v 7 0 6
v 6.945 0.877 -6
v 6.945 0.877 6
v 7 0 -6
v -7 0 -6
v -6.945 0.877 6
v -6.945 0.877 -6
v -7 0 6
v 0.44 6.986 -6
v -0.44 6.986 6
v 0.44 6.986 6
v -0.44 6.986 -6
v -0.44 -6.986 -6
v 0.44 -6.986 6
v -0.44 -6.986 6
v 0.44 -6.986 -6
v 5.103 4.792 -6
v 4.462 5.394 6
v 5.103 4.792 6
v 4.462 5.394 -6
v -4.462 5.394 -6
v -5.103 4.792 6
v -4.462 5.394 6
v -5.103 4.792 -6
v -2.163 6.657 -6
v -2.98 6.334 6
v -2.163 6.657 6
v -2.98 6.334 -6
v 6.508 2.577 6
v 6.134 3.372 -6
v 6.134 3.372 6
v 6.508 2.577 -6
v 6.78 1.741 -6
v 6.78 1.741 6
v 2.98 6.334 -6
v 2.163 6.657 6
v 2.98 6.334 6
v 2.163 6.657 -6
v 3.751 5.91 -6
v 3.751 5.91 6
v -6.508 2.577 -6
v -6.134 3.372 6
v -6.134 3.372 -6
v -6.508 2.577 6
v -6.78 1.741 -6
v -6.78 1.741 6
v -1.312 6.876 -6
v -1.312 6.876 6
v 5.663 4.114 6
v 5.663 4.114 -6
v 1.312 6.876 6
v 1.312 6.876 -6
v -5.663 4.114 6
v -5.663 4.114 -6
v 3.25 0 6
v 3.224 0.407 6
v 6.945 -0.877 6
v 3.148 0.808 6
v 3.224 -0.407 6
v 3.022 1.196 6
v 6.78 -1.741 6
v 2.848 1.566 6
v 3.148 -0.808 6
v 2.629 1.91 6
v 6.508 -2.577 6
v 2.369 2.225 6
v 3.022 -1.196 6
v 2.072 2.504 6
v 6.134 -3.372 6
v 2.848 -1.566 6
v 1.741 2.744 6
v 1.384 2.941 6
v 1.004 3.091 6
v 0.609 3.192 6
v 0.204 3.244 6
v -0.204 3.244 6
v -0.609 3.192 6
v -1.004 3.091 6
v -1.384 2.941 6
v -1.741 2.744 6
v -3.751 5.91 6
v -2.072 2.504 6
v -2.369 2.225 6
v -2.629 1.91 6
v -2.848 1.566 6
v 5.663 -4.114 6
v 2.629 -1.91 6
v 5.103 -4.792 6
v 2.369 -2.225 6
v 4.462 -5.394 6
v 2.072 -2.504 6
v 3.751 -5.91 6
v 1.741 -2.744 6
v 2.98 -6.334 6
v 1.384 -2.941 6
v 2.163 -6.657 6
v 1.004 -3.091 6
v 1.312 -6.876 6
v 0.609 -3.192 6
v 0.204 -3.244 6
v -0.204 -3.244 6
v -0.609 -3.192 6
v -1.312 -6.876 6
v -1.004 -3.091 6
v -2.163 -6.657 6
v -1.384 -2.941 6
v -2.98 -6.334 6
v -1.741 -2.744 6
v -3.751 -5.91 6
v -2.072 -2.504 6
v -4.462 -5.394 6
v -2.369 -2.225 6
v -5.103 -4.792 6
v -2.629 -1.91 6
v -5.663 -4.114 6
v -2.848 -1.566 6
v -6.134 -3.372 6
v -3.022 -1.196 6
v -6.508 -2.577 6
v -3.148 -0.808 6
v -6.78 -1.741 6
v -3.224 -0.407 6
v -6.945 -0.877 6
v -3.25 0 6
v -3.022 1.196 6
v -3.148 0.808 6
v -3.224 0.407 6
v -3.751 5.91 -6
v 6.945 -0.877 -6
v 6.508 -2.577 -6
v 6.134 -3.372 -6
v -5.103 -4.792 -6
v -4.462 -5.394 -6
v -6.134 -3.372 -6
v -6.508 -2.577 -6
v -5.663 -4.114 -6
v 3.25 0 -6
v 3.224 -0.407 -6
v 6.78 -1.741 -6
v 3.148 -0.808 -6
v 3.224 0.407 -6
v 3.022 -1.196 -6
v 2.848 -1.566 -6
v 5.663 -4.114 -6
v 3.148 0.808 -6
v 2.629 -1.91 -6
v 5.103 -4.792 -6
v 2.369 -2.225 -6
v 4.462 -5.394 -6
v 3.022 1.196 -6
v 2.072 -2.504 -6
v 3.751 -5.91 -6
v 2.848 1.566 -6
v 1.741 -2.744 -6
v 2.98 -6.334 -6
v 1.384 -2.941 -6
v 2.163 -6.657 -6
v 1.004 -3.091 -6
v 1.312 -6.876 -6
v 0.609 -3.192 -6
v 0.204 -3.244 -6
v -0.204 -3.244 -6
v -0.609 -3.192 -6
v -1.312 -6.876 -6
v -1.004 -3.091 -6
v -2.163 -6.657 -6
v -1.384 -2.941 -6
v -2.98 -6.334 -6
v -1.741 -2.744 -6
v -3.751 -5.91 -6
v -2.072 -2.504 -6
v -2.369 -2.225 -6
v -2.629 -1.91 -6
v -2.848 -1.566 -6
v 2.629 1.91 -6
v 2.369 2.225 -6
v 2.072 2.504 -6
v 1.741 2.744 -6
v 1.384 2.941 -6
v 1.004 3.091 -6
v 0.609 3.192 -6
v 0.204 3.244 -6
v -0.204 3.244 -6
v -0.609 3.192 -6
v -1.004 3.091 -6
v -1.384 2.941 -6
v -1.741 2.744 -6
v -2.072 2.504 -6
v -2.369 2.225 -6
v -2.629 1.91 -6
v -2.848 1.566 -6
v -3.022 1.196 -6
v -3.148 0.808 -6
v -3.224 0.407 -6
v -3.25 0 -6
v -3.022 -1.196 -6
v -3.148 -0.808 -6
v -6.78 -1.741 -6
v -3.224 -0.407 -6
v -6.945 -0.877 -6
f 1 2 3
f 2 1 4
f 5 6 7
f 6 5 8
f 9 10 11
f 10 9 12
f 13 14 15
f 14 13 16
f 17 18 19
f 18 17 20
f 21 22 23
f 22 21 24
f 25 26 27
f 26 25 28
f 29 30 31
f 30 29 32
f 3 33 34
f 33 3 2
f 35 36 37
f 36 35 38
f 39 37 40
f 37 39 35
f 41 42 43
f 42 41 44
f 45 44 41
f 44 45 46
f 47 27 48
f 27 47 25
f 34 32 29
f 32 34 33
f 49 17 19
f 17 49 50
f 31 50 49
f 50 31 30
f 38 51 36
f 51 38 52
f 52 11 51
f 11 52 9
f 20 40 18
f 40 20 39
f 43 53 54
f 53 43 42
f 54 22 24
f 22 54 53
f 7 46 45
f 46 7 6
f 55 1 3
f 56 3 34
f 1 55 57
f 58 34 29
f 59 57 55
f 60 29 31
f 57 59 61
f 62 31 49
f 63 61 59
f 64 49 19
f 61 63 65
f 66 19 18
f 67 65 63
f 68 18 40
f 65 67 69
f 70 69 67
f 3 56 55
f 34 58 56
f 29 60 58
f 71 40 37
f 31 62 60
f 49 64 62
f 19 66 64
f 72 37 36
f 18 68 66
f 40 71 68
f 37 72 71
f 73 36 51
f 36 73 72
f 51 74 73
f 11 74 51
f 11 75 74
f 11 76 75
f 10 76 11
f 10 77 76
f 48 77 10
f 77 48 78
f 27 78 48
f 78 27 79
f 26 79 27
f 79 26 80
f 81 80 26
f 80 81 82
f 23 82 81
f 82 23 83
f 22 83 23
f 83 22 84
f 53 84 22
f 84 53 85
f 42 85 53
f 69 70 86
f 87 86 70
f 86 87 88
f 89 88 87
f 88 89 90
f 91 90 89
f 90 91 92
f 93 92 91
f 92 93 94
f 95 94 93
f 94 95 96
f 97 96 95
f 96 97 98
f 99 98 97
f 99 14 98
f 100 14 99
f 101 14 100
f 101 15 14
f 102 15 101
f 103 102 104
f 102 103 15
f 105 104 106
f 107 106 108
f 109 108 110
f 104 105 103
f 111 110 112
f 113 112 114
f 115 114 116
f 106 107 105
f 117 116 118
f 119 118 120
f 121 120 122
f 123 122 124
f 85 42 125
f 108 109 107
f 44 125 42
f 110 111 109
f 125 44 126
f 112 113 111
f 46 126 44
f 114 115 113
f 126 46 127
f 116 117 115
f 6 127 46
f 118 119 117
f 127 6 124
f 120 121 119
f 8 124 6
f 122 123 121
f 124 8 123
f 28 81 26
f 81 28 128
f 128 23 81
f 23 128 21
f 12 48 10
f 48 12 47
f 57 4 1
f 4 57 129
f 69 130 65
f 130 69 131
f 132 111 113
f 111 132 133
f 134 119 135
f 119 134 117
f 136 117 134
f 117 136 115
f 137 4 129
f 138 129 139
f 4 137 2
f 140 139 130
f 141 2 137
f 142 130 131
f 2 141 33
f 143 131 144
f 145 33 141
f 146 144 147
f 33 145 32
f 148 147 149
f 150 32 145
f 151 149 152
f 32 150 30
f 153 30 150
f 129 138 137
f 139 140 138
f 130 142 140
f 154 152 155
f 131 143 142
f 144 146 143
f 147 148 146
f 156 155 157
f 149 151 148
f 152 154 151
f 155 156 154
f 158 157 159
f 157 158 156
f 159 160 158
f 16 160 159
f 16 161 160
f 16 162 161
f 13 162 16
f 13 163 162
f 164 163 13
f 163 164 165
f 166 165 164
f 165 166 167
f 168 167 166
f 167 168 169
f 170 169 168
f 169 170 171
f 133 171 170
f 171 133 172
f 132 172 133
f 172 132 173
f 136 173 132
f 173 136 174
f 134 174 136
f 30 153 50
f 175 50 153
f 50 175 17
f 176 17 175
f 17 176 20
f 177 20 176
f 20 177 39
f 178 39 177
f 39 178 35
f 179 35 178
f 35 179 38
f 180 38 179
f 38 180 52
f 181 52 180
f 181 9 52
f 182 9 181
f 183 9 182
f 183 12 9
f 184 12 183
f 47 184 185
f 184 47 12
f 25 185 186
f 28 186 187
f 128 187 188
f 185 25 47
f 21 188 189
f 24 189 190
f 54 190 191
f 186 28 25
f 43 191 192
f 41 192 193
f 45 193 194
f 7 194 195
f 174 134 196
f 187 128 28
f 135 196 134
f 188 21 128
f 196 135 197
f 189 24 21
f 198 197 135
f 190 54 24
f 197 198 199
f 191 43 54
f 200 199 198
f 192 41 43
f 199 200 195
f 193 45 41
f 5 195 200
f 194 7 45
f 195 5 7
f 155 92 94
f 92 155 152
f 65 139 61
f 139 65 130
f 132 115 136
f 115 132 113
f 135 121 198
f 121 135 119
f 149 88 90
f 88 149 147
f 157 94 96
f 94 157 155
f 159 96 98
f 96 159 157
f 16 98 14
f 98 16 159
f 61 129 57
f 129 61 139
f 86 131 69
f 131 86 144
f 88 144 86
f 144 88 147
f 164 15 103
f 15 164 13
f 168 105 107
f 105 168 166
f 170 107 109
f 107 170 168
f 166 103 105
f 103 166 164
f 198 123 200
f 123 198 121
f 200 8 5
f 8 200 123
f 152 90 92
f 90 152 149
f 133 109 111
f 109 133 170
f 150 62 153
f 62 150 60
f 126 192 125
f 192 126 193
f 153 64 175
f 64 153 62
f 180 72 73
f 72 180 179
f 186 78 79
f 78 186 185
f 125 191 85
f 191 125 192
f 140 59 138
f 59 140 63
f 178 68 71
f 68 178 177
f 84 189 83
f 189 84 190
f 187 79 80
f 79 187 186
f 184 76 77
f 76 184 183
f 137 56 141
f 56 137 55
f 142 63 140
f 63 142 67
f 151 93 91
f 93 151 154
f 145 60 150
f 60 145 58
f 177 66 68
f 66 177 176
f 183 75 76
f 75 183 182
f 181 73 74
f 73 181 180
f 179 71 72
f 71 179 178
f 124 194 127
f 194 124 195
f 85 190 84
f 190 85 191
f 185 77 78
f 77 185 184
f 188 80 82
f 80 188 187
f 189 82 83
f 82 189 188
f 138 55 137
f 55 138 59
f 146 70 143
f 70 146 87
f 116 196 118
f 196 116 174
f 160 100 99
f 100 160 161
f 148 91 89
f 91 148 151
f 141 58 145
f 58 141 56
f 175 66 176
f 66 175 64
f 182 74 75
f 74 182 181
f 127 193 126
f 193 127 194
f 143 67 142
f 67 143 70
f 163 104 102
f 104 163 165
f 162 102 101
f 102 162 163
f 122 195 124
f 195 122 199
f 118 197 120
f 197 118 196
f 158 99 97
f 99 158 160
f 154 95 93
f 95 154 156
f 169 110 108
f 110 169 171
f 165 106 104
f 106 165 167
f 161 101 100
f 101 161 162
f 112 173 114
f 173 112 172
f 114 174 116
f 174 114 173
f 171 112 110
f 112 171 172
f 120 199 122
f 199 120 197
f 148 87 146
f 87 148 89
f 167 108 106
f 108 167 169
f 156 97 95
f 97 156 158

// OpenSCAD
$fn = 50;


difference() {
	union() {
		translate(v = [0, 0, -6.0000000000]) {
			cylinder(h = 12, r = 7.0000000000);
		}
	}
	union() {
		translate(v = [0, 0, -100.0000000000]) {
			cylinder(h = 200, r = 3.2500000000);
		}
	}
}
